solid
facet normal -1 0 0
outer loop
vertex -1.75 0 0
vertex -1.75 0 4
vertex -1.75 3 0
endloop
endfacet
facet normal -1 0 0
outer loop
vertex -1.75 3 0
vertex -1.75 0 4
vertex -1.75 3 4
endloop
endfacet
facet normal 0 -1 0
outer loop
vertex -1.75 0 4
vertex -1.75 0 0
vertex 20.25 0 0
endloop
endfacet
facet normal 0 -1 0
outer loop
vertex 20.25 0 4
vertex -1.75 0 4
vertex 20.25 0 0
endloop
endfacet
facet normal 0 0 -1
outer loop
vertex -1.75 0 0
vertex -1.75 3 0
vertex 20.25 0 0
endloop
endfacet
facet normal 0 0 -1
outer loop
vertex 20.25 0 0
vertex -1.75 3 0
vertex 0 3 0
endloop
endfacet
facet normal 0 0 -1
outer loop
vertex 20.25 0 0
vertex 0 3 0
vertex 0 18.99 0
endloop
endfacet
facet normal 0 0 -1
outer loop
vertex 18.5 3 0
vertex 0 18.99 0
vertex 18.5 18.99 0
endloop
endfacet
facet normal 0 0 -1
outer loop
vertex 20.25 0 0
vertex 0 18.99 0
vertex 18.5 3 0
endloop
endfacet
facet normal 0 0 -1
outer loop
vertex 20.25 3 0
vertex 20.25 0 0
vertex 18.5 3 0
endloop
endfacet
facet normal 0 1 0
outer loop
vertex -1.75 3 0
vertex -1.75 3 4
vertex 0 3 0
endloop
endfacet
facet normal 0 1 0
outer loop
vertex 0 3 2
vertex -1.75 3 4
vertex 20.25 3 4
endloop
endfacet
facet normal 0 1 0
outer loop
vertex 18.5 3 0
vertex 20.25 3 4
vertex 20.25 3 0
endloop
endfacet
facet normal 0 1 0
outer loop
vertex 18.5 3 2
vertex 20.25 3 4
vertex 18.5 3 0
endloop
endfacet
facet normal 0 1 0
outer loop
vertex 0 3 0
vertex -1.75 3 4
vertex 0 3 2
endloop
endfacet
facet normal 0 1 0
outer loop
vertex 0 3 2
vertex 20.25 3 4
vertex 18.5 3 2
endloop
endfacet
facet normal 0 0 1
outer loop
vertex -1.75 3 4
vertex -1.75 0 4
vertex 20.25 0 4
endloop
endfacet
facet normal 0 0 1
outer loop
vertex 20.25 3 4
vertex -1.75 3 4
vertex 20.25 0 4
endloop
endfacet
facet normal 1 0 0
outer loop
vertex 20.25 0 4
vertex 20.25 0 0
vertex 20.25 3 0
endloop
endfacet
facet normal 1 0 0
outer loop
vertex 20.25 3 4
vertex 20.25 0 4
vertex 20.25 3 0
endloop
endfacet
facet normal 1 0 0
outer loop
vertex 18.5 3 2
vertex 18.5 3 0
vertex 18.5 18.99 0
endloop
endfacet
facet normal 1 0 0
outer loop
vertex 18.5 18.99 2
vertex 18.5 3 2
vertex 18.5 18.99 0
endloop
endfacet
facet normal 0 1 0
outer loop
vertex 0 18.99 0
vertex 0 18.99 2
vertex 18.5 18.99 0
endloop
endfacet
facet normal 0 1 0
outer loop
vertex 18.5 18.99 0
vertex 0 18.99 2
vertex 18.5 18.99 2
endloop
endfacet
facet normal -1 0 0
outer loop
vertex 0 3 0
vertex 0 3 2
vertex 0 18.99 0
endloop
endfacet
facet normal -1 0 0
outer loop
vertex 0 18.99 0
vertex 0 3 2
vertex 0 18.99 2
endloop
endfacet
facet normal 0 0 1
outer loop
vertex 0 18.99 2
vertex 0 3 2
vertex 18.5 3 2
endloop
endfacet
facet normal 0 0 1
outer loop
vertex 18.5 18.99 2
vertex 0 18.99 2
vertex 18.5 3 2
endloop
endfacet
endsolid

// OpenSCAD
e = 0.01;
module plate (w, h, d, w2, h2, d2, r)
{
    translate ([0, d2 - e, 0])
        cube ([w, d, h]);
    translate ([-(w2 - w) / 2, 0, 0])
        cube ([w2, d2, h2]);
}

plate (18.5, 2, 16, 22, 4, 3, 1.5);
